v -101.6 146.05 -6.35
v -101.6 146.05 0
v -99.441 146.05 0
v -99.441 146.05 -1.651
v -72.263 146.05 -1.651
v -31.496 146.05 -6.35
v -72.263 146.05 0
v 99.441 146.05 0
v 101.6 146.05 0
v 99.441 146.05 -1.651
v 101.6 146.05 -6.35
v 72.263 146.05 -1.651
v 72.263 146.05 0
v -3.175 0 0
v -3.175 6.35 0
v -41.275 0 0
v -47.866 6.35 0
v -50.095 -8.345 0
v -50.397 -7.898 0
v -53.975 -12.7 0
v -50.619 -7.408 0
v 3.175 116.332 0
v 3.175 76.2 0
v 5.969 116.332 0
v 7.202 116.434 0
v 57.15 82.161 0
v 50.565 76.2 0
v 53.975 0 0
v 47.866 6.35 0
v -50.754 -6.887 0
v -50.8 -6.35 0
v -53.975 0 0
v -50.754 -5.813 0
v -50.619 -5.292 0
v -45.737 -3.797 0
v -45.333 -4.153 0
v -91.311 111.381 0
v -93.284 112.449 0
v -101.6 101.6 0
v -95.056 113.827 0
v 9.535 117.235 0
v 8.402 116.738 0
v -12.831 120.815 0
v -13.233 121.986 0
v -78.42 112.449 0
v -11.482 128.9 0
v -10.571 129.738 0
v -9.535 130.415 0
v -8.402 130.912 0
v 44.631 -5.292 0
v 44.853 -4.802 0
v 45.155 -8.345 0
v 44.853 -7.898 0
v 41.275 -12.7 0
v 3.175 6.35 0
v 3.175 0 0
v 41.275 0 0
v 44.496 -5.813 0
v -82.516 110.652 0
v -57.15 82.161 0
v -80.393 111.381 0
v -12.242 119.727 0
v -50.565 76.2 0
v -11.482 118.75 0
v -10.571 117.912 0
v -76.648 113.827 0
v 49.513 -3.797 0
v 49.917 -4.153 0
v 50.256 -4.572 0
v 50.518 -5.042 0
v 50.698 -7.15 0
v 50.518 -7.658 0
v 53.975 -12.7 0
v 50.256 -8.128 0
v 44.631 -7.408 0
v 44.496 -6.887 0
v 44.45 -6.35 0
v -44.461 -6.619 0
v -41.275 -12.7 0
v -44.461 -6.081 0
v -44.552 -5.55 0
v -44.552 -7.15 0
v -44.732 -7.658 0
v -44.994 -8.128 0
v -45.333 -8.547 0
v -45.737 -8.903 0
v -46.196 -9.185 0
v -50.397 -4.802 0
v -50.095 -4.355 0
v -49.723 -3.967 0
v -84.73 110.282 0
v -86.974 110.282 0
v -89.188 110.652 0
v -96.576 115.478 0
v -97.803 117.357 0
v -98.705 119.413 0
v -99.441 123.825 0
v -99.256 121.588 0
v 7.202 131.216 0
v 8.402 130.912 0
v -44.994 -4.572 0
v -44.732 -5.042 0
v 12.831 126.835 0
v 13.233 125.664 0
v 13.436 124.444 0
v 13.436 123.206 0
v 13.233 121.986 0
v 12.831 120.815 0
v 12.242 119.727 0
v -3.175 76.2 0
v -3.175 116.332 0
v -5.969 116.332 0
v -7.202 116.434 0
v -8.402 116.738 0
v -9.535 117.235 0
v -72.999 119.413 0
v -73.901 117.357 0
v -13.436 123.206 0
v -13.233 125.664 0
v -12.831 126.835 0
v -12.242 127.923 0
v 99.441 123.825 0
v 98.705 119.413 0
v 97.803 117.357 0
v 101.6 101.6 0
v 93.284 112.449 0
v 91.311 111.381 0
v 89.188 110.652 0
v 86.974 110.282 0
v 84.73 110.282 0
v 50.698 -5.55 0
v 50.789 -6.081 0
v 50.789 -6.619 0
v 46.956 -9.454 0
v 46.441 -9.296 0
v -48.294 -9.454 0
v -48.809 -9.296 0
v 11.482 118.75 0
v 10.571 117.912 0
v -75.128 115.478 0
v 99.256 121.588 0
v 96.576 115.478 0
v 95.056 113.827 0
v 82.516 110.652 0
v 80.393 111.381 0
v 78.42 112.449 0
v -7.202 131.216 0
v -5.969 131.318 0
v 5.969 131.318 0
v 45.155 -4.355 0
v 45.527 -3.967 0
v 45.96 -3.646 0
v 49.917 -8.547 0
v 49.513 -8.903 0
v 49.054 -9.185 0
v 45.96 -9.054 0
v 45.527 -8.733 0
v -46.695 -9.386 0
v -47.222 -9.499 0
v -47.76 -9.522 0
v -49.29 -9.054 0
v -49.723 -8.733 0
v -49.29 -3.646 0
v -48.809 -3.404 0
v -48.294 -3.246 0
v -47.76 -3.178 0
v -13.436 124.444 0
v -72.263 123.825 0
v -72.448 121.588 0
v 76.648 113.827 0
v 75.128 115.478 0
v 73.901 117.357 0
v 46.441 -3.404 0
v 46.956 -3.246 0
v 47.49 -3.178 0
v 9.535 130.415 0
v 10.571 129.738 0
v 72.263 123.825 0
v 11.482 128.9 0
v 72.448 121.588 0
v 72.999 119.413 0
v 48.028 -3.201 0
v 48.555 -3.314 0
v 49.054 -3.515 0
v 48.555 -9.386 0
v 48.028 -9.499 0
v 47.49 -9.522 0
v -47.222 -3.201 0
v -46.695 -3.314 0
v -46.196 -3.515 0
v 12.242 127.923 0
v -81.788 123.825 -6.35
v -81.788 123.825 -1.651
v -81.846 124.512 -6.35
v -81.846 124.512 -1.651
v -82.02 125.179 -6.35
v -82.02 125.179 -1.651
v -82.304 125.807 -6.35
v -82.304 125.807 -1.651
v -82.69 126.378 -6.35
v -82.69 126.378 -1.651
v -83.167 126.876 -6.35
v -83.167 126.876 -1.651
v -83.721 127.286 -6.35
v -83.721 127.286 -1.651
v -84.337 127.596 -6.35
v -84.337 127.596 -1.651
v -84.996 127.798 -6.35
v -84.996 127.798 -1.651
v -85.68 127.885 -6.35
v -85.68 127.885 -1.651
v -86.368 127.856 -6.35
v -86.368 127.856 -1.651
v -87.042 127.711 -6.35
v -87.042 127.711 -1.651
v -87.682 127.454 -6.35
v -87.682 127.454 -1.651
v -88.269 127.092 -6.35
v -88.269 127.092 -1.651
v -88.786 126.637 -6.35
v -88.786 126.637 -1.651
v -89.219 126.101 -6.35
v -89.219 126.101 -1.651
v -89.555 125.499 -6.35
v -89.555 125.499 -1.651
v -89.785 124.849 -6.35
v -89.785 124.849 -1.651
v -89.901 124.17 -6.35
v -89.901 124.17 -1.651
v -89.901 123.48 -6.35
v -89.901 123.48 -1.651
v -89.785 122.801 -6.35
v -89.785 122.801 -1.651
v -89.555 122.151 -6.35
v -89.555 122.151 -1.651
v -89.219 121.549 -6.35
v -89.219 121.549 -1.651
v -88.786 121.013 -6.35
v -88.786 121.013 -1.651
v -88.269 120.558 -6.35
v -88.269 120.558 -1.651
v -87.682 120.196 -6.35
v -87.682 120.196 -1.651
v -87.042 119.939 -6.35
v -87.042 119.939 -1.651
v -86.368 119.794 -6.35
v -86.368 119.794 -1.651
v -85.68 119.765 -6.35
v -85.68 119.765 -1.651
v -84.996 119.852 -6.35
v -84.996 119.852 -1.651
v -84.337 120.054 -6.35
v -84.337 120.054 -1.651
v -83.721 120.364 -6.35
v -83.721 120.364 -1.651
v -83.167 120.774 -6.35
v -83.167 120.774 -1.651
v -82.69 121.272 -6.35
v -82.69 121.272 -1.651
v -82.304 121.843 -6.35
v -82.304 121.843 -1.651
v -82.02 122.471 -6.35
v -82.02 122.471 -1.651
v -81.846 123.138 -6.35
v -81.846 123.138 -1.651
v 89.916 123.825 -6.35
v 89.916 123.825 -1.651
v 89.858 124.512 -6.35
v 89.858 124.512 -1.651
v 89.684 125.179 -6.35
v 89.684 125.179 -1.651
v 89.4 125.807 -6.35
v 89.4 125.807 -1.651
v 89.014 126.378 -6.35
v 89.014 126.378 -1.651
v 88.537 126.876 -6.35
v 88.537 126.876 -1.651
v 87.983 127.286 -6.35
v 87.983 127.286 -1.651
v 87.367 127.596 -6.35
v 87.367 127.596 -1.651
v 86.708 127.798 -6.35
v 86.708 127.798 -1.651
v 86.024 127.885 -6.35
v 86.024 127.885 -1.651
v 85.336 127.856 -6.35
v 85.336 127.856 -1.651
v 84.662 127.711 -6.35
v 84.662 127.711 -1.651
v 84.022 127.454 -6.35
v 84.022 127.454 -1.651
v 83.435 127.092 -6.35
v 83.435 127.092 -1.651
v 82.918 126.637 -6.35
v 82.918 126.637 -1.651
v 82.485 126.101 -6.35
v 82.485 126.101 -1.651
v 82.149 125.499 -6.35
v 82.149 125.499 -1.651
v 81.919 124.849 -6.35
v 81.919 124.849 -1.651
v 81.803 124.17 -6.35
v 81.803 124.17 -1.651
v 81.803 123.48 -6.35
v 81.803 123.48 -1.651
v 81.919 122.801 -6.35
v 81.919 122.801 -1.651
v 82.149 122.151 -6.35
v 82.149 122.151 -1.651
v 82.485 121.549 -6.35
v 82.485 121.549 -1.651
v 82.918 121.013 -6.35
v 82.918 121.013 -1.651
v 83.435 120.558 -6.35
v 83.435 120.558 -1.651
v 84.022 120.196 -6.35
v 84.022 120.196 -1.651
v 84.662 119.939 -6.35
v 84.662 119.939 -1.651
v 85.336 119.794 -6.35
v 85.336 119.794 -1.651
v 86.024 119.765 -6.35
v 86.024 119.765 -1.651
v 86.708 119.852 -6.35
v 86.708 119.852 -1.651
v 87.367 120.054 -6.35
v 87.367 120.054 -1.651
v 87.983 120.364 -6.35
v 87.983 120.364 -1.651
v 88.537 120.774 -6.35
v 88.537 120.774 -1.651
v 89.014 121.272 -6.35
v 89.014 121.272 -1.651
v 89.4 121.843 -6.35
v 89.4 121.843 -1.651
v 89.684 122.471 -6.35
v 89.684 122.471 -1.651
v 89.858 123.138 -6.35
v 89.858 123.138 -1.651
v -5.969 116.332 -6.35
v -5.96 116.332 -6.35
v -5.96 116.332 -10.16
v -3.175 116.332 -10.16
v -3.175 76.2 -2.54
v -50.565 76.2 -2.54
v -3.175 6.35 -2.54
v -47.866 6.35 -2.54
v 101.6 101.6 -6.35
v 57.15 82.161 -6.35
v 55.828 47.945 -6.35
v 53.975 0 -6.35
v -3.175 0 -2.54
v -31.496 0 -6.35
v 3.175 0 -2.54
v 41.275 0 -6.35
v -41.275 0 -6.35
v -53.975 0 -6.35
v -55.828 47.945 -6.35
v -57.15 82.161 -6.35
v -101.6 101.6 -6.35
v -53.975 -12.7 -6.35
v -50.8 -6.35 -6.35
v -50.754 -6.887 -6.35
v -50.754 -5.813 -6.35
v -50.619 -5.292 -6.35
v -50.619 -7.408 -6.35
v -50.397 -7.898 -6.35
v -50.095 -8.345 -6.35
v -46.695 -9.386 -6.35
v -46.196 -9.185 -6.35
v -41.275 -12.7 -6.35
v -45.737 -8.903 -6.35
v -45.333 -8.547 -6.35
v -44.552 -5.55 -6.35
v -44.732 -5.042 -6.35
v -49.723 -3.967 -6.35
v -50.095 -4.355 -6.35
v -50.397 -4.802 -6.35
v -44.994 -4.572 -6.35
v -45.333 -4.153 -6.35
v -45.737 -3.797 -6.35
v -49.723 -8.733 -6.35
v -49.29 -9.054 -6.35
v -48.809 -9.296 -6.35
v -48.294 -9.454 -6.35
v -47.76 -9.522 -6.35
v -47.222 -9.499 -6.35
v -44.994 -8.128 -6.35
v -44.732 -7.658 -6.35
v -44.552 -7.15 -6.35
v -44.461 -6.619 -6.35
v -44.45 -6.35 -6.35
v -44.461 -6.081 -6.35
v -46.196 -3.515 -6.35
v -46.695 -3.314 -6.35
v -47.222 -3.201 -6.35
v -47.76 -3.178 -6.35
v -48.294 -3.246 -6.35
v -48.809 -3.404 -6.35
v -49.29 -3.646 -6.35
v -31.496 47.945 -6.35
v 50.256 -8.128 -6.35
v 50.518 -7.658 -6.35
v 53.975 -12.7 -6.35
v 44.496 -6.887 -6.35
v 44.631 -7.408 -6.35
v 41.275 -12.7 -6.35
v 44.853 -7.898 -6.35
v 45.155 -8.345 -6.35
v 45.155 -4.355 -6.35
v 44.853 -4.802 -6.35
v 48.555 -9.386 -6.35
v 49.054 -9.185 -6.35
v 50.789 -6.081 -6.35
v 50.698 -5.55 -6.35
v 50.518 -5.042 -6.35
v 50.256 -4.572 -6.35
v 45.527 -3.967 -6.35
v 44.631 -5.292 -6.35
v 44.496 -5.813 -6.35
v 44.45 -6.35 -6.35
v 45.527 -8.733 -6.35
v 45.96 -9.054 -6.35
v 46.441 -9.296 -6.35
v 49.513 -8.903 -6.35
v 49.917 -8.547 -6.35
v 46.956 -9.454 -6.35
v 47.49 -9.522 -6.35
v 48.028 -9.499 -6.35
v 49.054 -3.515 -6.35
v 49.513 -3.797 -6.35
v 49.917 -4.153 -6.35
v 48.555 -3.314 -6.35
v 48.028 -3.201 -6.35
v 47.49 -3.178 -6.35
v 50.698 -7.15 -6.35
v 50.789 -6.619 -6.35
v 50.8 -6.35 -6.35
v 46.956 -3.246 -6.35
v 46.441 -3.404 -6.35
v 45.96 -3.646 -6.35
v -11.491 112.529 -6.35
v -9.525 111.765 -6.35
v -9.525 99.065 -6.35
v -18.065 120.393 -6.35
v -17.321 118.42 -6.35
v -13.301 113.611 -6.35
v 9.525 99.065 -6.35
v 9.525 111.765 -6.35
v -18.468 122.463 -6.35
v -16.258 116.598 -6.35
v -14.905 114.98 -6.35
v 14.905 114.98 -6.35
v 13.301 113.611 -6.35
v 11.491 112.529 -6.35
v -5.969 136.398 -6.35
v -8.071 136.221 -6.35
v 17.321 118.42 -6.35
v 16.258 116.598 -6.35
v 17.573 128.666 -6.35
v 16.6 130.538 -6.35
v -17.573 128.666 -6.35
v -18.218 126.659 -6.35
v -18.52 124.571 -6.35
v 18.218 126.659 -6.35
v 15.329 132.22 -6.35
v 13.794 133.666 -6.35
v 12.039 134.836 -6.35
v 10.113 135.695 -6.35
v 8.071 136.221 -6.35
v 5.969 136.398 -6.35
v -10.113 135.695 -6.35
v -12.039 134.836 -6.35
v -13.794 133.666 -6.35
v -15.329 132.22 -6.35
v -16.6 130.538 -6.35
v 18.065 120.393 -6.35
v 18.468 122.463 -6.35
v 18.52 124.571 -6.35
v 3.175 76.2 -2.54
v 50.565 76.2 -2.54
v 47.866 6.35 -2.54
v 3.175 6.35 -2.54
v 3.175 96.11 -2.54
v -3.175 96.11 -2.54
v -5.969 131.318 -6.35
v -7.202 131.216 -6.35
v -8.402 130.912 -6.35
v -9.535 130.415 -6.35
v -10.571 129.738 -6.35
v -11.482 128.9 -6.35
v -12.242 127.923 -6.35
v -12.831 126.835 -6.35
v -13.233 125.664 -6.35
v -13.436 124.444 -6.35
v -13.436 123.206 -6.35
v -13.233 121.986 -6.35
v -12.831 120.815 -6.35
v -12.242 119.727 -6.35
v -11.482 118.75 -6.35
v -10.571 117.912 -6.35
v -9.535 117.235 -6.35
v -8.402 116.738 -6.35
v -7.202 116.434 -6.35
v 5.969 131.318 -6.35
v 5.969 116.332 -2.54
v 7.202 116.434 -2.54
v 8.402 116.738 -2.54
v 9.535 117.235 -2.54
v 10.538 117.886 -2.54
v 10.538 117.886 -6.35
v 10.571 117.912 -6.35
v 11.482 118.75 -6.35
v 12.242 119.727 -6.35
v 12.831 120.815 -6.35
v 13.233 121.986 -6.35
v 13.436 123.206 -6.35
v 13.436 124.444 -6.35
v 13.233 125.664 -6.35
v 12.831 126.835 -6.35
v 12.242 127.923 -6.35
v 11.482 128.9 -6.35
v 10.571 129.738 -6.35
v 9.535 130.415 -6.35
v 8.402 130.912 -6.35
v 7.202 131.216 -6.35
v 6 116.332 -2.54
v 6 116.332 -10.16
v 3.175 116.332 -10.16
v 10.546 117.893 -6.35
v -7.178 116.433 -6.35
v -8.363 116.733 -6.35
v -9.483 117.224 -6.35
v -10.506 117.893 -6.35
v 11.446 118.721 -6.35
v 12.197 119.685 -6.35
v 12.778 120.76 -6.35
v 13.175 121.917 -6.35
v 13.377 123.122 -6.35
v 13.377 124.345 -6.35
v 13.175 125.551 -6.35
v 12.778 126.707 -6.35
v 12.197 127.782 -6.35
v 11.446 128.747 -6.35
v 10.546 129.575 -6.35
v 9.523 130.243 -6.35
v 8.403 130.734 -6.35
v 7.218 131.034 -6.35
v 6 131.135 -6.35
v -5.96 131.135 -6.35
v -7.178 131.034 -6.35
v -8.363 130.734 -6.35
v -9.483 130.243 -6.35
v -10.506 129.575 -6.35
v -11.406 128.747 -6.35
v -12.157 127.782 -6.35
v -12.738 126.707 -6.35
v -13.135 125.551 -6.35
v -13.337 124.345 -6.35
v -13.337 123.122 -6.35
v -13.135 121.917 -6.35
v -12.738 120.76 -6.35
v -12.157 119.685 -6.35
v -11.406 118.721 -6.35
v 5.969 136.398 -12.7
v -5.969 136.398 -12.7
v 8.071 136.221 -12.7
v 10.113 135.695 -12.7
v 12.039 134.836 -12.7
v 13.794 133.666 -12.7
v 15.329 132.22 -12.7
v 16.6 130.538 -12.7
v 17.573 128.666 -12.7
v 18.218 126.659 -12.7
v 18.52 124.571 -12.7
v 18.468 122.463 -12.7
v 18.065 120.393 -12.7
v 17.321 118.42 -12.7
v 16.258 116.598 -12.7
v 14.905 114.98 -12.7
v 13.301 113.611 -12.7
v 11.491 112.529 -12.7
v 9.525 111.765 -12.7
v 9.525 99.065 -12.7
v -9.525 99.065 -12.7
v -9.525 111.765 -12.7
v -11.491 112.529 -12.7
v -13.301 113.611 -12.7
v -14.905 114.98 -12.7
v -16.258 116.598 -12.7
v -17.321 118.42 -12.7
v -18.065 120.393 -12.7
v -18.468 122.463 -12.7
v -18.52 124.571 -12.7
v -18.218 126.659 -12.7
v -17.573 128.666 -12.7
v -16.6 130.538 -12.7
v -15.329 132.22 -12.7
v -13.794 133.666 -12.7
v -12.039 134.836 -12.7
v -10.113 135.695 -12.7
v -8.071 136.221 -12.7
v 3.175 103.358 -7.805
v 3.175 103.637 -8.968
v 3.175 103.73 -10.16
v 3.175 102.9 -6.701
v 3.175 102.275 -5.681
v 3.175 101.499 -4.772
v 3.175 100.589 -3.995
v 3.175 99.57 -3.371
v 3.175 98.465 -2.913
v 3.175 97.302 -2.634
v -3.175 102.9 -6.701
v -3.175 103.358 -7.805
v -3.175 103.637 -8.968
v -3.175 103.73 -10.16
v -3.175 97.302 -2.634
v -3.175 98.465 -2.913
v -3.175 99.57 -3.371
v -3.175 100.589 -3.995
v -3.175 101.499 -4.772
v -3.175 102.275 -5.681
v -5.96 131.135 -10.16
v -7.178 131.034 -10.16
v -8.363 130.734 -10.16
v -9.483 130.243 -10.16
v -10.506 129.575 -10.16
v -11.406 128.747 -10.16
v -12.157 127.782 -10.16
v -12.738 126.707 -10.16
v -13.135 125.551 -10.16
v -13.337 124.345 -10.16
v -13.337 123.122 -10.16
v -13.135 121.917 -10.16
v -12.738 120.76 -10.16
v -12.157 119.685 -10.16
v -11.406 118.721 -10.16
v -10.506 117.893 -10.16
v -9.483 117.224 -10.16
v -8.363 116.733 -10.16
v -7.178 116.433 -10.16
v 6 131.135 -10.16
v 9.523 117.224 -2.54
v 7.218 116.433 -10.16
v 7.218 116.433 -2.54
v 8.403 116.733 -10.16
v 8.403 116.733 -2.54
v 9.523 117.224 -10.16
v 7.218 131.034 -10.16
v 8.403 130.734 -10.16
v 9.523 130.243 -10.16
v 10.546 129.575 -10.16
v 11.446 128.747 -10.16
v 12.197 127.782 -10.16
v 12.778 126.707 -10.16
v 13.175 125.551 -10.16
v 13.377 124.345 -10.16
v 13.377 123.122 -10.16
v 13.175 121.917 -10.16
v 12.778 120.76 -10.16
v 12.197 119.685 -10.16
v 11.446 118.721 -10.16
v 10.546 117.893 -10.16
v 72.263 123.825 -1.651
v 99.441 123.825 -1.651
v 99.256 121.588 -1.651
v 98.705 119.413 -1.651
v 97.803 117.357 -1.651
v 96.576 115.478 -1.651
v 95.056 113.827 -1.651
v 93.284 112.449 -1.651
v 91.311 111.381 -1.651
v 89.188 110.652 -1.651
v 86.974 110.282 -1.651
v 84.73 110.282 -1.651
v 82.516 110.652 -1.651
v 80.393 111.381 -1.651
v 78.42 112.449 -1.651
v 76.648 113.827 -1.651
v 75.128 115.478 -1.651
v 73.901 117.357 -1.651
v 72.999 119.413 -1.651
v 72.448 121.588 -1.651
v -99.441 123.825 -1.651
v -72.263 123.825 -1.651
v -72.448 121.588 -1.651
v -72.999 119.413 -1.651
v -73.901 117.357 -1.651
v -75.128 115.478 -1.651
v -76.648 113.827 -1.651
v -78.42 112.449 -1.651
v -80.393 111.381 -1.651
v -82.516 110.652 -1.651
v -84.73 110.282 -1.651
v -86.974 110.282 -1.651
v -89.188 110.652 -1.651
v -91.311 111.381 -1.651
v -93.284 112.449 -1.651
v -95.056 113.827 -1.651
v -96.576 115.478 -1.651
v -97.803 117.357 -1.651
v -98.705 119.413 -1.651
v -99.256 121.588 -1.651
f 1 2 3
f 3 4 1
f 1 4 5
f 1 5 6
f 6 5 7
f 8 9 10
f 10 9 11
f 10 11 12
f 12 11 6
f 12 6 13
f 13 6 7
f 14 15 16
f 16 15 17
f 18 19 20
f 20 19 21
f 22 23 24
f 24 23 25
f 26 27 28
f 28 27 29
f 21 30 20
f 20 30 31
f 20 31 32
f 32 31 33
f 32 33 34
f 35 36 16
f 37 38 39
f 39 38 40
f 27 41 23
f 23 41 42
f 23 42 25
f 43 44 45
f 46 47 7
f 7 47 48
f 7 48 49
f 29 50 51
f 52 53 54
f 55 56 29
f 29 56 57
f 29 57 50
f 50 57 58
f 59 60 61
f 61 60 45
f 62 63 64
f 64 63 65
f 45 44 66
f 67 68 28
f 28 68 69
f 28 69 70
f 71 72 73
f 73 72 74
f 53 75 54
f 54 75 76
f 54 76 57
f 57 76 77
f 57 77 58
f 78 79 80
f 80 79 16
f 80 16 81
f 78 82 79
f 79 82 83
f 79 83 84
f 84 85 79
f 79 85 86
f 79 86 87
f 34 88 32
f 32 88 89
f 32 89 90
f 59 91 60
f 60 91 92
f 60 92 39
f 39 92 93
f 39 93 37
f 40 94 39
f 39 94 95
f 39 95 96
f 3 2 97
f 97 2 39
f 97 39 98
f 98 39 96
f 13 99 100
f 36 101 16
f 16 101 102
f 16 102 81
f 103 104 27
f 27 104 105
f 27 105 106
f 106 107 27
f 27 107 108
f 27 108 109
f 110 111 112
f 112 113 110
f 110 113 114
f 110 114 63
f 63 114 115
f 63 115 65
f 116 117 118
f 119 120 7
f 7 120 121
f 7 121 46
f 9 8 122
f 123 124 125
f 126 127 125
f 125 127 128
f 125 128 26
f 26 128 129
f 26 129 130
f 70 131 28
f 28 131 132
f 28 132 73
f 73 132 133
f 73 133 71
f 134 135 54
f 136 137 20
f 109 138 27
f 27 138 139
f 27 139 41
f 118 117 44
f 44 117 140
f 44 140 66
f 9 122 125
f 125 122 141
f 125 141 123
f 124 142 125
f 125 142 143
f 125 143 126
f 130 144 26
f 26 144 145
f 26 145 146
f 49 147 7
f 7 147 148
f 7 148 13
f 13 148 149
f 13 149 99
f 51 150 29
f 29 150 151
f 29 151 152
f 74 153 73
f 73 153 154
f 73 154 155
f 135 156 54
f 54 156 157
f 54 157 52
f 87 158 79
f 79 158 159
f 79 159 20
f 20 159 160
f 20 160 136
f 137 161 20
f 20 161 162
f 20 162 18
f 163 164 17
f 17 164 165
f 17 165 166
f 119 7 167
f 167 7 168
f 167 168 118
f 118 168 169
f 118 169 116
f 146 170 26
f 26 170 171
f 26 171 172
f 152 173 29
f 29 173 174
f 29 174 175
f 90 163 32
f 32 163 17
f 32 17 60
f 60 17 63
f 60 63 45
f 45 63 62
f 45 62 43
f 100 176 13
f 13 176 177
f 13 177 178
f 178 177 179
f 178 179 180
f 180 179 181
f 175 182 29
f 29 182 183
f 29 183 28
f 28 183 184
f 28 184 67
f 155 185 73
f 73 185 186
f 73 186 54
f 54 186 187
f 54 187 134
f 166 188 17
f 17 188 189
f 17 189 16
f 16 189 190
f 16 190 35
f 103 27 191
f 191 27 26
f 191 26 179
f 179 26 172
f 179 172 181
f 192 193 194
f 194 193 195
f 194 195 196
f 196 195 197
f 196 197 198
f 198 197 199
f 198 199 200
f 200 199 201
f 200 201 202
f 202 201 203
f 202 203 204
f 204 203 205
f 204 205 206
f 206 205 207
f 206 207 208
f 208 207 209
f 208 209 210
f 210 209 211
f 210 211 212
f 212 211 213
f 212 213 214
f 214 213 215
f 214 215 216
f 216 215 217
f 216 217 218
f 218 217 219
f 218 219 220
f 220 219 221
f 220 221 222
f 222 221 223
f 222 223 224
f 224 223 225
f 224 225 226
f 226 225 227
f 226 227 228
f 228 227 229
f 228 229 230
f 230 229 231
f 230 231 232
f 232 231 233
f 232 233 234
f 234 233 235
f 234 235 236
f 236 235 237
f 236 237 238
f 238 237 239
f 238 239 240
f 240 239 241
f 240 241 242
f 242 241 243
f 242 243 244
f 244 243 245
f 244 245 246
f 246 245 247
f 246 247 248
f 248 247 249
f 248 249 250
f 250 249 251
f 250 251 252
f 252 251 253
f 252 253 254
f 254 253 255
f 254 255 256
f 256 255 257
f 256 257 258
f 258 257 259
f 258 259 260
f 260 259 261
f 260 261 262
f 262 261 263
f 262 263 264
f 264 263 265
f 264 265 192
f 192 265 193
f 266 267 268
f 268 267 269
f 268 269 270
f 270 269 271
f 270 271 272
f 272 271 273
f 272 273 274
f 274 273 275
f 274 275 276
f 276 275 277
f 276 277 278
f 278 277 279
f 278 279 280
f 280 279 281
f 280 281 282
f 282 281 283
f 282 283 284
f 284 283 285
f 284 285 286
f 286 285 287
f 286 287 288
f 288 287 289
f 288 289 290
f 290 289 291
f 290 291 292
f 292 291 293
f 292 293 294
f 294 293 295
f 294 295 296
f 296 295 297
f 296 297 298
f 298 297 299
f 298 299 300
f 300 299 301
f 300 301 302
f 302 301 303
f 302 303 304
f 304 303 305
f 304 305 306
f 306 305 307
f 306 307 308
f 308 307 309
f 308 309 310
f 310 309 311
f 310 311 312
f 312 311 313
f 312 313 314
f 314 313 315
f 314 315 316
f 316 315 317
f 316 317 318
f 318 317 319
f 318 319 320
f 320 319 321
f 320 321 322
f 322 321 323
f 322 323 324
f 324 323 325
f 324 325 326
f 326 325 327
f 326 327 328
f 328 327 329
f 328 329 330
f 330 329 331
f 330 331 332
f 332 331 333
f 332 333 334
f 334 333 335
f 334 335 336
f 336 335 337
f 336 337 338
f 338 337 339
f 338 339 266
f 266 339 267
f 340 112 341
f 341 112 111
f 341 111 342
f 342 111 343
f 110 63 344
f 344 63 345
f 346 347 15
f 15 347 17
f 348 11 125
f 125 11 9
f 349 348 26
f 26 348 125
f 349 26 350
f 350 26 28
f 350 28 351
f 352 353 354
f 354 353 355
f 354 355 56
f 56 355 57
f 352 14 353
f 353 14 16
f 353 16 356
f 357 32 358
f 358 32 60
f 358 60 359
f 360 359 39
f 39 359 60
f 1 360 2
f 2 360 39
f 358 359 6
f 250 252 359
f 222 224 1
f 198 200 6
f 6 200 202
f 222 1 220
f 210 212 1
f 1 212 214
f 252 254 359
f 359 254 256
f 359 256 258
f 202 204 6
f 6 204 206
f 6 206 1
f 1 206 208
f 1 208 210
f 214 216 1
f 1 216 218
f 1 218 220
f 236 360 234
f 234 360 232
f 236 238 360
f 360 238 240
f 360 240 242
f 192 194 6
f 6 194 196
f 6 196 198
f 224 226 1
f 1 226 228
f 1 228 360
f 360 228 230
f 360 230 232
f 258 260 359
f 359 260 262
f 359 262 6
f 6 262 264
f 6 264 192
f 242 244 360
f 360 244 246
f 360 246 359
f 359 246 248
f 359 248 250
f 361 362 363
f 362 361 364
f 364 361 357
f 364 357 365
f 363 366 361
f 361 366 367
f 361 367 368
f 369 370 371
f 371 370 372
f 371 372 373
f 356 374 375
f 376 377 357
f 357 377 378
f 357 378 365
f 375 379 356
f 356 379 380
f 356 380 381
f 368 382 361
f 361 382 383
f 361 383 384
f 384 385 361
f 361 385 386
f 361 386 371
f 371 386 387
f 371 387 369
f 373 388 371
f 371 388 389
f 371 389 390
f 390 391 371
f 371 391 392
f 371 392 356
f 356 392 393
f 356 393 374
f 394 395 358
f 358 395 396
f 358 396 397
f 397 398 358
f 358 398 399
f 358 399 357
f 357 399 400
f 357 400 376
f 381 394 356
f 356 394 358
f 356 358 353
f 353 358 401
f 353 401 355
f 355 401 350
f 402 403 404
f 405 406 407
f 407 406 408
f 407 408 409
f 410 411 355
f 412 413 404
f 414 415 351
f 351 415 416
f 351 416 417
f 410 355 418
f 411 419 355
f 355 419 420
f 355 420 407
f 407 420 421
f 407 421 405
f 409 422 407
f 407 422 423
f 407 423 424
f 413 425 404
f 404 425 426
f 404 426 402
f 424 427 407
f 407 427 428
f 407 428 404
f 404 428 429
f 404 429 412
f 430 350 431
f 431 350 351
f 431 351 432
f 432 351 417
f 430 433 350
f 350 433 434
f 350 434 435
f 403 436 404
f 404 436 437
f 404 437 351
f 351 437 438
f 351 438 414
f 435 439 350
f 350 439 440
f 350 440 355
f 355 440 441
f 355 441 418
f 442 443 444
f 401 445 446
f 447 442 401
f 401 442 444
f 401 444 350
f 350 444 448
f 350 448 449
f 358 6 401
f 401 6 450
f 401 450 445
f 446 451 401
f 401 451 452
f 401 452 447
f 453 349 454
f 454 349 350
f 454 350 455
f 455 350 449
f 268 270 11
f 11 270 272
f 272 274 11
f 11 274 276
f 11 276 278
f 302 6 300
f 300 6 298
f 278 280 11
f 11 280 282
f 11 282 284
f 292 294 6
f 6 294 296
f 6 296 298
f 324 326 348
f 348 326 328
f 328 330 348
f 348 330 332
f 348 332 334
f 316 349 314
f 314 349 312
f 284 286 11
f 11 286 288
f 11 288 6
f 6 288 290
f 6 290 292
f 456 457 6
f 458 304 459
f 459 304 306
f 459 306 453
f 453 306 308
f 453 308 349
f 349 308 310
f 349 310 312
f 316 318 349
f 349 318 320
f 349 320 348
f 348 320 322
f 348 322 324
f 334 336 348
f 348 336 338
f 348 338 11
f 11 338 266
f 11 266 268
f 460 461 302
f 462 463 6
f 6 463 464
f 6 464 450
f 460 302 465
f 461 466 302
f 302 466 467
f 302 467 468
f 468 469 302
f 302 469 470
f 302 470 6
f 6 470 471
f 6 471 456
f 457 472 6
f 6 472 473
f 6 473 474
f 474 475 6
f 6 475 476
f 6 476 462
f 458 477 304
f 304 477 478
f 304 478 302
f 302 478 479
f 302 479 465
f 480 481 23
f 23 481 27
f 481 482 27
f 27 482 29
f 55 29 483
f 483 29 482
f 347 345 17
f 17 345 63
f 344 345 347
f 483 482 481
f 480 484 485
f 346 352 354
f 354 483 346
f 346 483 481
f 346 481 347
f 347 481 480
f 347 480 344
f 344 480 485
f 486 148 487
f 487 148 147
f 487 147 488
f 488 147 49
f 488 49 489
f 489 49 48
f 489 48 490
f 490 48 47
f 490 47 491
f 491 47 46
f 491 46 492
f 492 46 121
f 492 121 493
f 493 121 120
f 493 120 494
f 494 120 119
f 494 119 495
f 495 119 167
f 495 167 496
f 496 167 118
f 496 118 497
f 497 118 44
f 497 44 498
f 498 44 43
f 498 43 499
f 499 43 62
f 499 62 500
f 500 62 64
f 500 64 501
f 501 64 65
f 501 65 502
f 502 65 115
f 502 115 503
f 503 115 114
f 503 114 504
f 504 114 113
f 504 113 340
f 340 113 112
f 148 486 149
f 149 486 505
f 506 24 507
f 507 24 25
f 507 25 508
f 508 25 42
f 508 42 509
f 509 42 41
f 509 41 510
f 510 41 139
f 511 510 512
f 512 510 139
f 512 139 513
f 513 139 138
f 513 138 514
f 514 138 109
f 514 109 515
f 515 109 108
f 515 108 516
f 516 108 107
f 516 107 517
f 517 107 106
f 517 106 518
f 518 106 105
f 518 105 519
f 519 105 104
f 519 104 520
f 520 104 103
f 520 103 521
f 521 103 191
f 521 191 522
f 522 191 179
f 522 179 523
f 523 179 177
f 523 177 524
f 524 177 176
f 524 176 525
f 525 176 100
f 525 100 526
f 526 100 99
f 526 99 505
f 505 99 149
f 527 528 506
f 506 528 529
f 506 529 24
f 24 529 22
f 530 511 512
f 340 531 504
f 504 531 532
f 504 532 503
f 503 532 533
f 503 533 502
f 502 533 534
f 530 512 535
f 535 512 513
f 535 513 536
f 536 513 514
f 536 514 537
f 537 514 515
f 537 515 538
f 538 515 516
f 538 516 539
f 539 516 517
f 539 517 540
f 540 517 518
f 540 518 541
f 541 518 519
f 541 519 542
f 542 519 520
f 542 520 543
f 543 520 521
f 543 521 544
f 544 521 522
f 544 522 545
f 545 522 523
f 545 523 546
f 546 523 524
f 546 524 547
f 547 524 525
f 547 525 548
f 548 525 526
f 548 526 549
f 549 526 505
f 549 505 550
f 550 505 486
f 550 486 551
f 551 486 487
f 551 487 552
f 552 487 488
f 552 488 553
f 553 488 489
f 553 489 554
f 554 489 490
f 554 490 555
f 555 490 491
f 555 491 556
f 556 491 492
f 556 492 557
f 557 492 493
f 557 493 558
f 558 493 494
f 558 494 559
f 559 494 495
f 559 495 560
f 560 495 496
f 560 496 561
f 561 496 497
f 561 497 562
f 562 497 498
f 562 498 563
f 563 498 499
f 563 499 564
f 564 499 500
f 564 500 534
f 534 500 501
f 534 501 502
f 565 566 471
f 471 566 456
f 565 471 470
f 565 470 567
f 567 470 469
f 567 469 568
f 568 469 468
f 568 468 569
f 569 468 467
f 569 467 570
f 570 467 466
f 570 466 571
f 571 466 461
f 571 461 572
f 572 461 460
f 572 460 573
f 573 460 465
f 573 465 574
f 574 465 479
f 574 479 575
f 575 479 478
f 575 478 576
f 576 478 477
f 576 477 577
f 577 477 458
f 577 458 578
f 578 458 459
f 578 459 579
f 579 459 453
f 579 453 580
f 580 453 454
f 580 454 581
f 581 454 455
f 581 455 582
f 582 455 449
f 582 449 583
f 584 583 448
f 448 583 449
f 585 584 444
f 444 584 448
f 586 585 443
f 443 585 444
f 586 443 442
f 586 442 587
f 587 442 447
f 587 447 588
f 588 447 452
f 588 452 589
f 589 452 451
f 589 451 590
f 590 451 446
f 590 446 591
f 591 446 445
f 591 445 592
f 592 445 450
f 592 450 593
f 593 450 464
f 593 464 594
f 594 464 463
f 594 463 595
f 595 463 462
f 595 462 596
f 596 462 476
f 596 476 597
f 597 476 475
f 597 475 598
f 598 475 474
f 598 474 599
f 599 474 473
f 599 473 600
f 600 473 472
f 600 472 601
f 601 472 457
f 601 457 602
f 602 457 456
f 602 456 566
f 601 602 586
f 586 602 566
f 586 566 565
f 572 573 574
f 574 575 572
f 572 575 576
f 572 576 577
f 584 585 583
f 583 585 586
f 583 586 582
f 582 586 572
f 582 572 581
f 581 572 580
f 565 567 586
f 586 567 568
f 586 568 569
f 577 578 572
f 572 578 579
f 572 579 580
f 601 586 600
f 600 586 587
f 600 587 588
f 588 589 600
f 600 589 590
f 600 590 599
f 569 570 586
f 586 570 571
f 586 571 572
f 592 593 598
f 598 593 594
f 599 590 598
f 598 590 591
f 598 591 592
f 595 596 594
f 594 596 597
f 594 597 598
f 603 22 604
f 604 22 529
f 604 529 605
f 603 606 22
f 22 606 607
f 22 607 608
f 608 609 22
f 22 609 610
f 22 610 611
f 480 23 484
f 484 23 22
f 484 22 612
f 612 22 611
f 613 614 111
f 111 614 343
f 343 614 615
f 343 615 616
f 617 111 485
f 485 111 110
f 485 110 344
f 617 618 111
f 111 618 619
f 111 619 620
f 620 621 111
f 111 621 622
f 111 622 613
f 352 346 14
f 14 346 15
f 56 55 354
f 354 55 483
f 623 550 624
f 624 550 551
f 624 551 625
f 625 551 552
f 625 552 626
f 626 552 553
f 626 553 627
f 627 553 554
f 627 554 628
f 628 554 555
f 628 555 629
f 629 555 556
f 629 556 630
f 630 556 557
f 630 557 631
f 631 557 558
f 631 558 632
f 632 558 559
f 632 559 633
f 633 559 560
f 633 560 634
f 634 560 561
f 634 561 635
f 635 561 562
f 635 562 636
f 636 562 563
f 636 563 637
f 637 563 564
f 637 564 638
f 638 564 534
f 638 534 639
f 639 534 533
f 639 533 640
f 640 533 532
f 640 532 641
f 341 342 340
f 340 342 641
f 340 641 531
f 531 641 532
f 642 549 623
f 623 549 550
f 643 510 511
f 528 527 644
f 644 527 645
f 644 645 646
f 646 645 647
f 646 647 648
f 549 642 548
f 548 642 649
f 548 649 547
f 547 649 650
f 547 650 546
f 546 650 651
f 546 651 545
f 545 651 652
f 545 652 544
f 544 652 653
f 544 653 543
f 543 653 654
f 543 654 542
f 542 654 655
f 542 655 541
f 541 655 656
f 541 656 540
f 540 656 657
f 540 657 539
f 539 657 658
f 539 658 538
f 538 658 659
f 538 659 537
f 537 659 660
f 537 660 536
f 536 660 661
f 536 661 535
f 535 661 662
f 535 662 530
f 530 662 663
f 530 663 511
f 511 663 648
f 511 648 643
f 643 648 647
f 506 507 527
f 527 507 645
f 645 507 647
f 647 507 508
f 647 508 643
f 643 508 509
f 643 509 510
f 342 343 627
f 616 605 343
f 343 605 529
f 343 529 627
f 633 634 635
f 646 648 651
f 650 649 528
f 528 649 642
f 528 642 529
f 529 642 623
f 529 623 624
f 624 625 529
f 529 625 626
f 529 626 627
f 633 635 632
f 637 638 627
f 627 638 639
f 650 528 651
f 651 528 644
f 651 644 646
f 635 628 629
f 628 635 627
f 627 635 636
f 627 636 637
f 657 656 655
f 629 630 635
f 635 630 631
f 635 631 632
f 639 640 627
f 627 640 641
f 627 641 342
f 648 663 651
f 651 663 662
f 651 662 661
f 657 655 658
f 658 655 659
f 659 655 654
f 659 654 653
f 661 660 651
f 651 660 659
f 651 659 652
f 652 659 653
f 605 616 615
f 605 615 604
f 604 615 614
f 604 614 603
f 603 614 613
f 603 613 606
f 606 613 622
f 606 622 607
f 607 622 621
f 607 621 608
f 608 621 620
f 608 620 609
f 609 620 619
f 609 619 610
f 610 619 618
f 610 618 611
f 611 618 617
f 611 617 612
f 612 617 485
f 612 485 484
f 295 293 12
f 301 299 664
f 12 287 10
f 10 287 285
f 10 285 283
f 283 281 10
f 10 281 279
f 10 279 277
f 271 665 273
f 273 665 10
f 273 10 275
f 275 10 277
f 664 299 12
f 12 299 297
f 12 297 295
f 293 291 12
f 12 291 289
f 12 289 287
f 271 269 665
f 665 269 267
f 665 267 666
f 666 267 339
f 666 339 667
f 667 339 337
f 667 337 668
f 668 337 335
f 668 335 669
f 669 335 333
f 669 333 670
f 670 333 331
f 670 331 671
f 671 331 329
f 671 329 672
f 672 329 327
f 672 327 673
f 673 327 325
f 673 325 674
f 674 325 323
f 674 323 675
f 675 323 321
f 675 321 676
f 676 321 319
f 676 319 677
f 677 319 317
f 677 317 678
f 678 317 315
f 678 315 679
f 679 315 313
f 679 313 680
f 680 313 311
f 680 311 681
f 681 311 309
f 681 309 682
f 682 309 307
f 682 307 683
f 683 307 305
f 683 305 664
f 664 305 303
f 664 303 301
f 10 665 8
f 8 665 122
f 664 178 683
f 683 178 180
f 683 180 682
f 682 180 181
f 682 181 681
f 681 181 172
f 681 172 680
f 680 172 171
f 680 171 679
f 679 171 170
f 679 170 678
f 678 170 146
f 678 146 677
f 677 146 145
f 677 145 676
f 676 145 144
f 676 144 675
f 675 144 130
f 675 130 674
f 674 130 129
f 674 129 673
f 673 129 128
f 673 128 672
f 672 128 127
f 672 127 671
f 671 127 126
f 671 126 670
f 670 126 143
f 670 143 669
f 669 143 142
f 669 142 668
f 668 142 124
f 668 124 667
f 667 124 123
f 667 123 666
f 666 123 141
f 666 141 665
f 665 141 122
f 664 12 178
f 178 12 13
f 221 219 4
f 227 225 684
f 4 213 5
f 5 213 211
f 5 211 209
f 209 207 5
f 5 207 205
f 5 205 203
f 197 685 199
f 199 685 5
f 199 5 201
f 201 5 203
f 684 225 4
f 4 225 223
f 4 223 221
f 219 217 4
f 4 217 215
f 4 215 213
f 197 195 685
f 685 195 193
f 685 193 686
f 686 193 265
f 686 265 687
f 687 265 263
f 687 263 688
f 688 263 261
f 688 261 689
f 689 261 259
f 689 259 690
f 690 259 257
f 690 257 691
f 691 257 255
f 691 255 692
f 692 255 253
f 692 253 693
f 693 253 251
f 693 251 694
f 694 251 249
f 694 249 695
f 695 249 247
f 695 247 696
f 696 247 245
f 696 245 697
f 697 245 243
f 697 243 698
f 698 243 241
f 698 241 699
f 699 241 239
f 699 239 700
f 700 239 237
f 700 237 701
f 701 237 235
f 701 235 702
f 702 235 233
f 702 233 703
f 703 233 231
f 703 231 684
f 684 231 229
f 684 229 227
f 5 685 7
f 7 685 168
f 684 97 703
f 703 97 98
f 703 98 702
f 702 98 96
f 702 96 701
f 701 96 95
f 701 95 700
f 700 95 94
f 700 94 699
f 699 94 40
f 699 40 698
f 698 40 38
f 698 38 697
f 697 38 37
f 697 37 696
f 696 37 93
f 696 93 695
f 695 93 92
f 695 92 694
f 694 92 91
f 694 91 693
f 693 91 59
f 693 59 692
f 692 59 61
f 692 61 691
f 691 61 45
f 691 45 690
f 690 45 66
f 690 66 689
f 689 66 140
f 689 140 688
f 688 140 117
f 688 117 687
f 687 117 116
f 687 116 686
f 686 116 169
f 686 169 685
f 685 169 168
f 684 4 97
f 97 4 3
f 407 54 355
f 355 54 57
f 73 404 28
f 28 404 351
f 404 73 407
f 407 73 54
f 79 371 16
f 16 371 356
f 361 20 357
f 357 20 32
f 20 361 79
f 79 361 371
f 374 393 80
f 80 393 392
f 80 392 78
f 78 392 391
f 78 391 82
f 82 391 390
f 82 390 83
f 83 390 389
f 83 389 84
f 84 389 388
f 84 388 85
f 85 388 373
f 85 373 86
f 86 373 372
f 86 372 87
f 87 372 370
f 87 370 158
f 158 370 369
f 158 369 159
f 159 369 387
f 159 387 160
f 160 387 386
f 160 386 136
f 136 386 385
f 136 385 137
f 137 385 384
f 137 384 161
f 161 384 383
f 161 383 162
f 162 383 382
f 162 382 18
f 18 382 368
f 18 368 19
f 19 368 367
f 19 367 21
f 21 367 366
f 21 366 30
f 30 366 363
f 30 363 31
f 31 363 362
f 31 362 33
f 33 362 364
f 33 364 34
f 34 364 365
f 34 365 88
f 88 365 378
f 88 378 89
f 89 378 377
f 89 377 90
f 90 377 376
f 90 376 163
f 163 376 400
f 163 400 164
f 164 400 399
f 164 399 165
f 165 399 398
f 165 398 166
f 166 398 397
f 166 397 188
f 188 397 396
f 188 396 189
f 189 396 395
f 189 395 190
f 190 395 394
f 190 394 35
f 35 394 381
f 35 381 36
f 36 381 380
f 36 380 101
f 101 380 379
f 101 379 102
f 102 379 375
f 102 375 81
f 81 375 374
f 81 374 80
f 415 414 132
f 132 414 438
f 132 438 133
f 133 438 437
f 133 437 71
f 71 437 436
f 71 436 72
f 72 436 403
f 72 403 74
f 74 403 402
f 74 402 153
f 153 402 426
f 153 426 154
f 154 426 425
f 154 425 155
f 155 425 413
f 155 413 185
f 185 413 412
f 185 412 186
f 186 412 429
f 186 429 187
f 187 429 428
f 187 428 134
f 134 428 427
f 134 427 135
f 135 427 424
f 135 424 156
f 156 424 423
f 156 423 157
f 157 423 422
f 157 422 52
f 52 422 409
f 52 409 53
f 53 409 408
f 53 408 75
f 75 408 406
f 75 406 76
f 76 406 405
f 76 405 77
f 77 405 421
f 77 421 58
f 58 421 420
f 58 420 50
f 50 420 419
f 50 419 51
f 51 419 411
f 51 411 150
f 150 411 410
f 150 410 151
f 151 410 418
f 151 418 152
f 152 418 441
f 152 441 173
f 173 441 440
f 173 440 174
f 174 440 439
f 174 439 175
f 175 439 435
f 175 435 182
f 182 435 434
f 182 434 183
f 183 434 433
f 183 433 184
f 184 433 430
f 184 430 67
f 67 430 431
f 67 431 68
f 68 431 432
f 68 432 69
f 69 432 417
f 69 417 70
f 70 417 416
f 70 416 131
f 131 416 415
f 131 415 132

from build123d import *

# Parameters (mm, degrees)
MAIN_BODY_DEPTH          = 6.35
BATTERY_SPACING_DEPTH    = 2.54
SKETCH8_R                = 4.064
LIGHT_SOCKETS_DEPTH      = 12.7
LIGHT_LEADS_POCKET_DEPTH = 6.35
WIRE_TRAIL_DEPTH         = 2.54
LEAD_ROOM_DEPTH          = 7.62
FILLET1_R                = 7.62
TAB_SLOTS_DEPTH          = 1.651
SKETCH14_W               = 12.7
SKETCH14_H               = 6.35
SCREW_MOUNT_DEPTH        = 12.7
CUT_EXTRUDE1_DEPTH       = 179.026641265
CUT_EXTRUDE1_DEPTH_BACK  = 179.026641265
SKETCH15_R               = 3.175


# Sheet-metal steps are written as plain solids
with BuildPart() as part:
    # Sketch1 → Main Body (new body)
    with BuildSketch(Plane.XY):
        Polygon((-53.975, 0), (53.975, 0), (57.15, 82.161327118), (101.6, 101.6), (101.6, 146.05), (-101.6, 146.05), (-101.6, 101.6), (-57.15, 82.161327118), align=None)
    extrude(amount=-MAIN_BODY_DEPTH)

    # Sketch7 → Battery Spacing (cut)
    with BuildSketch(Plane.XY):
        Polygon((-50.564894027, 76.2), (-47.86564661, 6.35), (47.86564661, 6.35), (50.564894027, 76.2), align=None)
    extrude(amount=-BATTERY_SPACING_DEPTH, mode=Mode.SUBTRACT)

    # Sketch8 → Light Sockets (cut)
    with BuildSketch(Plane.XY):
        with Locations((85.852, 123.825)):
            Circle(SKETCH8_R)
        with Locations((-85.852, 123.825)):
            Circle(SKETCH8_R)
        with BuildLine():
            Line((-5.969, 131.318), (5.969, 131.318))
            ThreePointArc((5.969, 131.318), (13.462, 123.825), (5.969, 116.332))
            Line((5.969, 116.332), (-5.969, 116.332))
            ThreePointArc((-5.969, 116.332), (-13.462, 123.825), (-5.969, 131.318))
        make_face()
    extrude(amount=-LIGHT_SOCKETS_DEPTH, mode=Mode.SUBTRACT)

    # Sketch9 → Light Leads Pocket (add)
    with BuildSketch(Plane(origin=(0, 0, -6.35), x_dir=(-1, 0, 0), z_dir=(0, 0, -1))):
        with BuildLine():
            Line((-9.525, 111.765348554), (-9.525, 99.065348554))
            Line((-9.525, 99.065348554), (9.525, 99.065348554))
            Line((9.525, 99.065348554), (9.525, 111.765348554))
            ThreePointArc((9.525, 111.765348554), (18.413001098, 125.621431375), (5.969, 136.398))
            Line((5.969, 136.398), (-5.969, 136.398))
            ThreePointArc((-5.969, 136.398), (-18.413001098, 125.621431375), (-9.525, 111.765348554))
        make_face()
    extrude(amount=LIGHT_LEADS_POCKET_DEPTH)

    # Sketch10 → Wire Trail (cut)
    with BuildSketch(Plane.XY):
        Polygon((-3.175, 116.332), (3.175, 116.332), (3.175, 76.2), (3.175, 6.35), (3.175, 0), (-3.175, 0), align=None)
    extrude(amount=-WIRE_TRAIL_DEPTH, mode=Mode.SUBTRACT)

    # Sketch12 → Lead Room (cut)
    with BuildSketch(Plane.XY.offset(-2.54)):
        with BuildLine():
            Line((-3.175, 116.332), (-5.960094489, 116.332))
            ThreePointArc((-5.960094489, 116.332), (-13.36178344, 123.73368895), (-5.960094489, 131.135377901))
            Line((-5.960094489, 131.135377901), (6.000168296, 131.135377901))
            ThreePointArc((6.000168296, 131.135377901), (13.401857247, 123.73368895), (6.000168296, 116.332))
            Line((6.000168296, 116.332), (3.175, 116.332))
            Line((3.175, 116.332), (3.175, 103.730451358))
            Line((3.175, 103.730451358), (-3.175, 103.730451358))
            Line((-3.175, 103.730451358), (-3.175, 116.332))
        make_face()
    extrude(amount=-LEAD_ROOM_DEPTH, mode=Mode.SUBTRACT)

    # Fillet1
    fillet1_edges = [part.edges().sort_by_distance(p)[0] for p in [
        (0, 103.730451358, -2.54),
    ]]
    fillet(fillet1_edges, radius=FILLET1_R - 0.0001)  # a hair under: the kernel refuses the full size

    # Sketch13 → Tab Slots (cut)
    with BuildSketch(Plane.XY):
        with BuildLine():
            Line((72.263, 146.05), (72.263, 123.825))
            ThreePointArc((72.263, 123.825), (85.852, 110.236), (99.441, 123.825))
            Line((99.441, 123.825), (99.441, 146.05))
            Line((99.441, 146.05), (72.263, 146.05))
        make_face()
    tab_slots = extrude(amount=-TAB_SLOTS_DEPTH, mode=Mode.SUBTRACT)

    # Mirror1: Tab Slots across plane
    add(tab_slots.mirror(Plane(origin=(0, 0, 0), x_dir=(0, 0, 1), z_dir=(1, 0, 0))), mode=Mode.SUBTRACT)

    # Sketch14 → Screw Mount (add)
    with BuildSketch(Plane.XZ):
        with Locations((47.625, -3.175)):
            Rectangle(SKETCH14_W, SKETCH14_H)
    screw_mount = extrude(amount=SCREW_MOUNT_DEPTH)

    # Mirror2: Screw Mount across plane
    add(screw_mount.mirror(Plane(origin=(0, 0, 0), x_dir=(0, 0, 1), z_dir=(1, 0, 0))))

    # Sketch15 → Cut-Extrude1 (cut, two sides: drawn at the far end of the back side and taken through both)
    with BuildSketch(Plane(origin=(0, 0, -6.35), x_dir=(-1, 0, 0), z_dir=(0, 0, -1)).offset(-CUT_EXTRUDE1_DEPTH_BACK)):
        with Locations((47.625, -6.35)):
            Circle(SKETCH15_R)
        with Locations((-47.625, -6.35)):
            Circle(SKETCH15_R)
    extrude(amount=CUT_EXTRUDE1_DEPTH + CUT_EXTRUDE1_DEPTH_BACK, mode=Mode.SUBTRACT)


solid = part.part
